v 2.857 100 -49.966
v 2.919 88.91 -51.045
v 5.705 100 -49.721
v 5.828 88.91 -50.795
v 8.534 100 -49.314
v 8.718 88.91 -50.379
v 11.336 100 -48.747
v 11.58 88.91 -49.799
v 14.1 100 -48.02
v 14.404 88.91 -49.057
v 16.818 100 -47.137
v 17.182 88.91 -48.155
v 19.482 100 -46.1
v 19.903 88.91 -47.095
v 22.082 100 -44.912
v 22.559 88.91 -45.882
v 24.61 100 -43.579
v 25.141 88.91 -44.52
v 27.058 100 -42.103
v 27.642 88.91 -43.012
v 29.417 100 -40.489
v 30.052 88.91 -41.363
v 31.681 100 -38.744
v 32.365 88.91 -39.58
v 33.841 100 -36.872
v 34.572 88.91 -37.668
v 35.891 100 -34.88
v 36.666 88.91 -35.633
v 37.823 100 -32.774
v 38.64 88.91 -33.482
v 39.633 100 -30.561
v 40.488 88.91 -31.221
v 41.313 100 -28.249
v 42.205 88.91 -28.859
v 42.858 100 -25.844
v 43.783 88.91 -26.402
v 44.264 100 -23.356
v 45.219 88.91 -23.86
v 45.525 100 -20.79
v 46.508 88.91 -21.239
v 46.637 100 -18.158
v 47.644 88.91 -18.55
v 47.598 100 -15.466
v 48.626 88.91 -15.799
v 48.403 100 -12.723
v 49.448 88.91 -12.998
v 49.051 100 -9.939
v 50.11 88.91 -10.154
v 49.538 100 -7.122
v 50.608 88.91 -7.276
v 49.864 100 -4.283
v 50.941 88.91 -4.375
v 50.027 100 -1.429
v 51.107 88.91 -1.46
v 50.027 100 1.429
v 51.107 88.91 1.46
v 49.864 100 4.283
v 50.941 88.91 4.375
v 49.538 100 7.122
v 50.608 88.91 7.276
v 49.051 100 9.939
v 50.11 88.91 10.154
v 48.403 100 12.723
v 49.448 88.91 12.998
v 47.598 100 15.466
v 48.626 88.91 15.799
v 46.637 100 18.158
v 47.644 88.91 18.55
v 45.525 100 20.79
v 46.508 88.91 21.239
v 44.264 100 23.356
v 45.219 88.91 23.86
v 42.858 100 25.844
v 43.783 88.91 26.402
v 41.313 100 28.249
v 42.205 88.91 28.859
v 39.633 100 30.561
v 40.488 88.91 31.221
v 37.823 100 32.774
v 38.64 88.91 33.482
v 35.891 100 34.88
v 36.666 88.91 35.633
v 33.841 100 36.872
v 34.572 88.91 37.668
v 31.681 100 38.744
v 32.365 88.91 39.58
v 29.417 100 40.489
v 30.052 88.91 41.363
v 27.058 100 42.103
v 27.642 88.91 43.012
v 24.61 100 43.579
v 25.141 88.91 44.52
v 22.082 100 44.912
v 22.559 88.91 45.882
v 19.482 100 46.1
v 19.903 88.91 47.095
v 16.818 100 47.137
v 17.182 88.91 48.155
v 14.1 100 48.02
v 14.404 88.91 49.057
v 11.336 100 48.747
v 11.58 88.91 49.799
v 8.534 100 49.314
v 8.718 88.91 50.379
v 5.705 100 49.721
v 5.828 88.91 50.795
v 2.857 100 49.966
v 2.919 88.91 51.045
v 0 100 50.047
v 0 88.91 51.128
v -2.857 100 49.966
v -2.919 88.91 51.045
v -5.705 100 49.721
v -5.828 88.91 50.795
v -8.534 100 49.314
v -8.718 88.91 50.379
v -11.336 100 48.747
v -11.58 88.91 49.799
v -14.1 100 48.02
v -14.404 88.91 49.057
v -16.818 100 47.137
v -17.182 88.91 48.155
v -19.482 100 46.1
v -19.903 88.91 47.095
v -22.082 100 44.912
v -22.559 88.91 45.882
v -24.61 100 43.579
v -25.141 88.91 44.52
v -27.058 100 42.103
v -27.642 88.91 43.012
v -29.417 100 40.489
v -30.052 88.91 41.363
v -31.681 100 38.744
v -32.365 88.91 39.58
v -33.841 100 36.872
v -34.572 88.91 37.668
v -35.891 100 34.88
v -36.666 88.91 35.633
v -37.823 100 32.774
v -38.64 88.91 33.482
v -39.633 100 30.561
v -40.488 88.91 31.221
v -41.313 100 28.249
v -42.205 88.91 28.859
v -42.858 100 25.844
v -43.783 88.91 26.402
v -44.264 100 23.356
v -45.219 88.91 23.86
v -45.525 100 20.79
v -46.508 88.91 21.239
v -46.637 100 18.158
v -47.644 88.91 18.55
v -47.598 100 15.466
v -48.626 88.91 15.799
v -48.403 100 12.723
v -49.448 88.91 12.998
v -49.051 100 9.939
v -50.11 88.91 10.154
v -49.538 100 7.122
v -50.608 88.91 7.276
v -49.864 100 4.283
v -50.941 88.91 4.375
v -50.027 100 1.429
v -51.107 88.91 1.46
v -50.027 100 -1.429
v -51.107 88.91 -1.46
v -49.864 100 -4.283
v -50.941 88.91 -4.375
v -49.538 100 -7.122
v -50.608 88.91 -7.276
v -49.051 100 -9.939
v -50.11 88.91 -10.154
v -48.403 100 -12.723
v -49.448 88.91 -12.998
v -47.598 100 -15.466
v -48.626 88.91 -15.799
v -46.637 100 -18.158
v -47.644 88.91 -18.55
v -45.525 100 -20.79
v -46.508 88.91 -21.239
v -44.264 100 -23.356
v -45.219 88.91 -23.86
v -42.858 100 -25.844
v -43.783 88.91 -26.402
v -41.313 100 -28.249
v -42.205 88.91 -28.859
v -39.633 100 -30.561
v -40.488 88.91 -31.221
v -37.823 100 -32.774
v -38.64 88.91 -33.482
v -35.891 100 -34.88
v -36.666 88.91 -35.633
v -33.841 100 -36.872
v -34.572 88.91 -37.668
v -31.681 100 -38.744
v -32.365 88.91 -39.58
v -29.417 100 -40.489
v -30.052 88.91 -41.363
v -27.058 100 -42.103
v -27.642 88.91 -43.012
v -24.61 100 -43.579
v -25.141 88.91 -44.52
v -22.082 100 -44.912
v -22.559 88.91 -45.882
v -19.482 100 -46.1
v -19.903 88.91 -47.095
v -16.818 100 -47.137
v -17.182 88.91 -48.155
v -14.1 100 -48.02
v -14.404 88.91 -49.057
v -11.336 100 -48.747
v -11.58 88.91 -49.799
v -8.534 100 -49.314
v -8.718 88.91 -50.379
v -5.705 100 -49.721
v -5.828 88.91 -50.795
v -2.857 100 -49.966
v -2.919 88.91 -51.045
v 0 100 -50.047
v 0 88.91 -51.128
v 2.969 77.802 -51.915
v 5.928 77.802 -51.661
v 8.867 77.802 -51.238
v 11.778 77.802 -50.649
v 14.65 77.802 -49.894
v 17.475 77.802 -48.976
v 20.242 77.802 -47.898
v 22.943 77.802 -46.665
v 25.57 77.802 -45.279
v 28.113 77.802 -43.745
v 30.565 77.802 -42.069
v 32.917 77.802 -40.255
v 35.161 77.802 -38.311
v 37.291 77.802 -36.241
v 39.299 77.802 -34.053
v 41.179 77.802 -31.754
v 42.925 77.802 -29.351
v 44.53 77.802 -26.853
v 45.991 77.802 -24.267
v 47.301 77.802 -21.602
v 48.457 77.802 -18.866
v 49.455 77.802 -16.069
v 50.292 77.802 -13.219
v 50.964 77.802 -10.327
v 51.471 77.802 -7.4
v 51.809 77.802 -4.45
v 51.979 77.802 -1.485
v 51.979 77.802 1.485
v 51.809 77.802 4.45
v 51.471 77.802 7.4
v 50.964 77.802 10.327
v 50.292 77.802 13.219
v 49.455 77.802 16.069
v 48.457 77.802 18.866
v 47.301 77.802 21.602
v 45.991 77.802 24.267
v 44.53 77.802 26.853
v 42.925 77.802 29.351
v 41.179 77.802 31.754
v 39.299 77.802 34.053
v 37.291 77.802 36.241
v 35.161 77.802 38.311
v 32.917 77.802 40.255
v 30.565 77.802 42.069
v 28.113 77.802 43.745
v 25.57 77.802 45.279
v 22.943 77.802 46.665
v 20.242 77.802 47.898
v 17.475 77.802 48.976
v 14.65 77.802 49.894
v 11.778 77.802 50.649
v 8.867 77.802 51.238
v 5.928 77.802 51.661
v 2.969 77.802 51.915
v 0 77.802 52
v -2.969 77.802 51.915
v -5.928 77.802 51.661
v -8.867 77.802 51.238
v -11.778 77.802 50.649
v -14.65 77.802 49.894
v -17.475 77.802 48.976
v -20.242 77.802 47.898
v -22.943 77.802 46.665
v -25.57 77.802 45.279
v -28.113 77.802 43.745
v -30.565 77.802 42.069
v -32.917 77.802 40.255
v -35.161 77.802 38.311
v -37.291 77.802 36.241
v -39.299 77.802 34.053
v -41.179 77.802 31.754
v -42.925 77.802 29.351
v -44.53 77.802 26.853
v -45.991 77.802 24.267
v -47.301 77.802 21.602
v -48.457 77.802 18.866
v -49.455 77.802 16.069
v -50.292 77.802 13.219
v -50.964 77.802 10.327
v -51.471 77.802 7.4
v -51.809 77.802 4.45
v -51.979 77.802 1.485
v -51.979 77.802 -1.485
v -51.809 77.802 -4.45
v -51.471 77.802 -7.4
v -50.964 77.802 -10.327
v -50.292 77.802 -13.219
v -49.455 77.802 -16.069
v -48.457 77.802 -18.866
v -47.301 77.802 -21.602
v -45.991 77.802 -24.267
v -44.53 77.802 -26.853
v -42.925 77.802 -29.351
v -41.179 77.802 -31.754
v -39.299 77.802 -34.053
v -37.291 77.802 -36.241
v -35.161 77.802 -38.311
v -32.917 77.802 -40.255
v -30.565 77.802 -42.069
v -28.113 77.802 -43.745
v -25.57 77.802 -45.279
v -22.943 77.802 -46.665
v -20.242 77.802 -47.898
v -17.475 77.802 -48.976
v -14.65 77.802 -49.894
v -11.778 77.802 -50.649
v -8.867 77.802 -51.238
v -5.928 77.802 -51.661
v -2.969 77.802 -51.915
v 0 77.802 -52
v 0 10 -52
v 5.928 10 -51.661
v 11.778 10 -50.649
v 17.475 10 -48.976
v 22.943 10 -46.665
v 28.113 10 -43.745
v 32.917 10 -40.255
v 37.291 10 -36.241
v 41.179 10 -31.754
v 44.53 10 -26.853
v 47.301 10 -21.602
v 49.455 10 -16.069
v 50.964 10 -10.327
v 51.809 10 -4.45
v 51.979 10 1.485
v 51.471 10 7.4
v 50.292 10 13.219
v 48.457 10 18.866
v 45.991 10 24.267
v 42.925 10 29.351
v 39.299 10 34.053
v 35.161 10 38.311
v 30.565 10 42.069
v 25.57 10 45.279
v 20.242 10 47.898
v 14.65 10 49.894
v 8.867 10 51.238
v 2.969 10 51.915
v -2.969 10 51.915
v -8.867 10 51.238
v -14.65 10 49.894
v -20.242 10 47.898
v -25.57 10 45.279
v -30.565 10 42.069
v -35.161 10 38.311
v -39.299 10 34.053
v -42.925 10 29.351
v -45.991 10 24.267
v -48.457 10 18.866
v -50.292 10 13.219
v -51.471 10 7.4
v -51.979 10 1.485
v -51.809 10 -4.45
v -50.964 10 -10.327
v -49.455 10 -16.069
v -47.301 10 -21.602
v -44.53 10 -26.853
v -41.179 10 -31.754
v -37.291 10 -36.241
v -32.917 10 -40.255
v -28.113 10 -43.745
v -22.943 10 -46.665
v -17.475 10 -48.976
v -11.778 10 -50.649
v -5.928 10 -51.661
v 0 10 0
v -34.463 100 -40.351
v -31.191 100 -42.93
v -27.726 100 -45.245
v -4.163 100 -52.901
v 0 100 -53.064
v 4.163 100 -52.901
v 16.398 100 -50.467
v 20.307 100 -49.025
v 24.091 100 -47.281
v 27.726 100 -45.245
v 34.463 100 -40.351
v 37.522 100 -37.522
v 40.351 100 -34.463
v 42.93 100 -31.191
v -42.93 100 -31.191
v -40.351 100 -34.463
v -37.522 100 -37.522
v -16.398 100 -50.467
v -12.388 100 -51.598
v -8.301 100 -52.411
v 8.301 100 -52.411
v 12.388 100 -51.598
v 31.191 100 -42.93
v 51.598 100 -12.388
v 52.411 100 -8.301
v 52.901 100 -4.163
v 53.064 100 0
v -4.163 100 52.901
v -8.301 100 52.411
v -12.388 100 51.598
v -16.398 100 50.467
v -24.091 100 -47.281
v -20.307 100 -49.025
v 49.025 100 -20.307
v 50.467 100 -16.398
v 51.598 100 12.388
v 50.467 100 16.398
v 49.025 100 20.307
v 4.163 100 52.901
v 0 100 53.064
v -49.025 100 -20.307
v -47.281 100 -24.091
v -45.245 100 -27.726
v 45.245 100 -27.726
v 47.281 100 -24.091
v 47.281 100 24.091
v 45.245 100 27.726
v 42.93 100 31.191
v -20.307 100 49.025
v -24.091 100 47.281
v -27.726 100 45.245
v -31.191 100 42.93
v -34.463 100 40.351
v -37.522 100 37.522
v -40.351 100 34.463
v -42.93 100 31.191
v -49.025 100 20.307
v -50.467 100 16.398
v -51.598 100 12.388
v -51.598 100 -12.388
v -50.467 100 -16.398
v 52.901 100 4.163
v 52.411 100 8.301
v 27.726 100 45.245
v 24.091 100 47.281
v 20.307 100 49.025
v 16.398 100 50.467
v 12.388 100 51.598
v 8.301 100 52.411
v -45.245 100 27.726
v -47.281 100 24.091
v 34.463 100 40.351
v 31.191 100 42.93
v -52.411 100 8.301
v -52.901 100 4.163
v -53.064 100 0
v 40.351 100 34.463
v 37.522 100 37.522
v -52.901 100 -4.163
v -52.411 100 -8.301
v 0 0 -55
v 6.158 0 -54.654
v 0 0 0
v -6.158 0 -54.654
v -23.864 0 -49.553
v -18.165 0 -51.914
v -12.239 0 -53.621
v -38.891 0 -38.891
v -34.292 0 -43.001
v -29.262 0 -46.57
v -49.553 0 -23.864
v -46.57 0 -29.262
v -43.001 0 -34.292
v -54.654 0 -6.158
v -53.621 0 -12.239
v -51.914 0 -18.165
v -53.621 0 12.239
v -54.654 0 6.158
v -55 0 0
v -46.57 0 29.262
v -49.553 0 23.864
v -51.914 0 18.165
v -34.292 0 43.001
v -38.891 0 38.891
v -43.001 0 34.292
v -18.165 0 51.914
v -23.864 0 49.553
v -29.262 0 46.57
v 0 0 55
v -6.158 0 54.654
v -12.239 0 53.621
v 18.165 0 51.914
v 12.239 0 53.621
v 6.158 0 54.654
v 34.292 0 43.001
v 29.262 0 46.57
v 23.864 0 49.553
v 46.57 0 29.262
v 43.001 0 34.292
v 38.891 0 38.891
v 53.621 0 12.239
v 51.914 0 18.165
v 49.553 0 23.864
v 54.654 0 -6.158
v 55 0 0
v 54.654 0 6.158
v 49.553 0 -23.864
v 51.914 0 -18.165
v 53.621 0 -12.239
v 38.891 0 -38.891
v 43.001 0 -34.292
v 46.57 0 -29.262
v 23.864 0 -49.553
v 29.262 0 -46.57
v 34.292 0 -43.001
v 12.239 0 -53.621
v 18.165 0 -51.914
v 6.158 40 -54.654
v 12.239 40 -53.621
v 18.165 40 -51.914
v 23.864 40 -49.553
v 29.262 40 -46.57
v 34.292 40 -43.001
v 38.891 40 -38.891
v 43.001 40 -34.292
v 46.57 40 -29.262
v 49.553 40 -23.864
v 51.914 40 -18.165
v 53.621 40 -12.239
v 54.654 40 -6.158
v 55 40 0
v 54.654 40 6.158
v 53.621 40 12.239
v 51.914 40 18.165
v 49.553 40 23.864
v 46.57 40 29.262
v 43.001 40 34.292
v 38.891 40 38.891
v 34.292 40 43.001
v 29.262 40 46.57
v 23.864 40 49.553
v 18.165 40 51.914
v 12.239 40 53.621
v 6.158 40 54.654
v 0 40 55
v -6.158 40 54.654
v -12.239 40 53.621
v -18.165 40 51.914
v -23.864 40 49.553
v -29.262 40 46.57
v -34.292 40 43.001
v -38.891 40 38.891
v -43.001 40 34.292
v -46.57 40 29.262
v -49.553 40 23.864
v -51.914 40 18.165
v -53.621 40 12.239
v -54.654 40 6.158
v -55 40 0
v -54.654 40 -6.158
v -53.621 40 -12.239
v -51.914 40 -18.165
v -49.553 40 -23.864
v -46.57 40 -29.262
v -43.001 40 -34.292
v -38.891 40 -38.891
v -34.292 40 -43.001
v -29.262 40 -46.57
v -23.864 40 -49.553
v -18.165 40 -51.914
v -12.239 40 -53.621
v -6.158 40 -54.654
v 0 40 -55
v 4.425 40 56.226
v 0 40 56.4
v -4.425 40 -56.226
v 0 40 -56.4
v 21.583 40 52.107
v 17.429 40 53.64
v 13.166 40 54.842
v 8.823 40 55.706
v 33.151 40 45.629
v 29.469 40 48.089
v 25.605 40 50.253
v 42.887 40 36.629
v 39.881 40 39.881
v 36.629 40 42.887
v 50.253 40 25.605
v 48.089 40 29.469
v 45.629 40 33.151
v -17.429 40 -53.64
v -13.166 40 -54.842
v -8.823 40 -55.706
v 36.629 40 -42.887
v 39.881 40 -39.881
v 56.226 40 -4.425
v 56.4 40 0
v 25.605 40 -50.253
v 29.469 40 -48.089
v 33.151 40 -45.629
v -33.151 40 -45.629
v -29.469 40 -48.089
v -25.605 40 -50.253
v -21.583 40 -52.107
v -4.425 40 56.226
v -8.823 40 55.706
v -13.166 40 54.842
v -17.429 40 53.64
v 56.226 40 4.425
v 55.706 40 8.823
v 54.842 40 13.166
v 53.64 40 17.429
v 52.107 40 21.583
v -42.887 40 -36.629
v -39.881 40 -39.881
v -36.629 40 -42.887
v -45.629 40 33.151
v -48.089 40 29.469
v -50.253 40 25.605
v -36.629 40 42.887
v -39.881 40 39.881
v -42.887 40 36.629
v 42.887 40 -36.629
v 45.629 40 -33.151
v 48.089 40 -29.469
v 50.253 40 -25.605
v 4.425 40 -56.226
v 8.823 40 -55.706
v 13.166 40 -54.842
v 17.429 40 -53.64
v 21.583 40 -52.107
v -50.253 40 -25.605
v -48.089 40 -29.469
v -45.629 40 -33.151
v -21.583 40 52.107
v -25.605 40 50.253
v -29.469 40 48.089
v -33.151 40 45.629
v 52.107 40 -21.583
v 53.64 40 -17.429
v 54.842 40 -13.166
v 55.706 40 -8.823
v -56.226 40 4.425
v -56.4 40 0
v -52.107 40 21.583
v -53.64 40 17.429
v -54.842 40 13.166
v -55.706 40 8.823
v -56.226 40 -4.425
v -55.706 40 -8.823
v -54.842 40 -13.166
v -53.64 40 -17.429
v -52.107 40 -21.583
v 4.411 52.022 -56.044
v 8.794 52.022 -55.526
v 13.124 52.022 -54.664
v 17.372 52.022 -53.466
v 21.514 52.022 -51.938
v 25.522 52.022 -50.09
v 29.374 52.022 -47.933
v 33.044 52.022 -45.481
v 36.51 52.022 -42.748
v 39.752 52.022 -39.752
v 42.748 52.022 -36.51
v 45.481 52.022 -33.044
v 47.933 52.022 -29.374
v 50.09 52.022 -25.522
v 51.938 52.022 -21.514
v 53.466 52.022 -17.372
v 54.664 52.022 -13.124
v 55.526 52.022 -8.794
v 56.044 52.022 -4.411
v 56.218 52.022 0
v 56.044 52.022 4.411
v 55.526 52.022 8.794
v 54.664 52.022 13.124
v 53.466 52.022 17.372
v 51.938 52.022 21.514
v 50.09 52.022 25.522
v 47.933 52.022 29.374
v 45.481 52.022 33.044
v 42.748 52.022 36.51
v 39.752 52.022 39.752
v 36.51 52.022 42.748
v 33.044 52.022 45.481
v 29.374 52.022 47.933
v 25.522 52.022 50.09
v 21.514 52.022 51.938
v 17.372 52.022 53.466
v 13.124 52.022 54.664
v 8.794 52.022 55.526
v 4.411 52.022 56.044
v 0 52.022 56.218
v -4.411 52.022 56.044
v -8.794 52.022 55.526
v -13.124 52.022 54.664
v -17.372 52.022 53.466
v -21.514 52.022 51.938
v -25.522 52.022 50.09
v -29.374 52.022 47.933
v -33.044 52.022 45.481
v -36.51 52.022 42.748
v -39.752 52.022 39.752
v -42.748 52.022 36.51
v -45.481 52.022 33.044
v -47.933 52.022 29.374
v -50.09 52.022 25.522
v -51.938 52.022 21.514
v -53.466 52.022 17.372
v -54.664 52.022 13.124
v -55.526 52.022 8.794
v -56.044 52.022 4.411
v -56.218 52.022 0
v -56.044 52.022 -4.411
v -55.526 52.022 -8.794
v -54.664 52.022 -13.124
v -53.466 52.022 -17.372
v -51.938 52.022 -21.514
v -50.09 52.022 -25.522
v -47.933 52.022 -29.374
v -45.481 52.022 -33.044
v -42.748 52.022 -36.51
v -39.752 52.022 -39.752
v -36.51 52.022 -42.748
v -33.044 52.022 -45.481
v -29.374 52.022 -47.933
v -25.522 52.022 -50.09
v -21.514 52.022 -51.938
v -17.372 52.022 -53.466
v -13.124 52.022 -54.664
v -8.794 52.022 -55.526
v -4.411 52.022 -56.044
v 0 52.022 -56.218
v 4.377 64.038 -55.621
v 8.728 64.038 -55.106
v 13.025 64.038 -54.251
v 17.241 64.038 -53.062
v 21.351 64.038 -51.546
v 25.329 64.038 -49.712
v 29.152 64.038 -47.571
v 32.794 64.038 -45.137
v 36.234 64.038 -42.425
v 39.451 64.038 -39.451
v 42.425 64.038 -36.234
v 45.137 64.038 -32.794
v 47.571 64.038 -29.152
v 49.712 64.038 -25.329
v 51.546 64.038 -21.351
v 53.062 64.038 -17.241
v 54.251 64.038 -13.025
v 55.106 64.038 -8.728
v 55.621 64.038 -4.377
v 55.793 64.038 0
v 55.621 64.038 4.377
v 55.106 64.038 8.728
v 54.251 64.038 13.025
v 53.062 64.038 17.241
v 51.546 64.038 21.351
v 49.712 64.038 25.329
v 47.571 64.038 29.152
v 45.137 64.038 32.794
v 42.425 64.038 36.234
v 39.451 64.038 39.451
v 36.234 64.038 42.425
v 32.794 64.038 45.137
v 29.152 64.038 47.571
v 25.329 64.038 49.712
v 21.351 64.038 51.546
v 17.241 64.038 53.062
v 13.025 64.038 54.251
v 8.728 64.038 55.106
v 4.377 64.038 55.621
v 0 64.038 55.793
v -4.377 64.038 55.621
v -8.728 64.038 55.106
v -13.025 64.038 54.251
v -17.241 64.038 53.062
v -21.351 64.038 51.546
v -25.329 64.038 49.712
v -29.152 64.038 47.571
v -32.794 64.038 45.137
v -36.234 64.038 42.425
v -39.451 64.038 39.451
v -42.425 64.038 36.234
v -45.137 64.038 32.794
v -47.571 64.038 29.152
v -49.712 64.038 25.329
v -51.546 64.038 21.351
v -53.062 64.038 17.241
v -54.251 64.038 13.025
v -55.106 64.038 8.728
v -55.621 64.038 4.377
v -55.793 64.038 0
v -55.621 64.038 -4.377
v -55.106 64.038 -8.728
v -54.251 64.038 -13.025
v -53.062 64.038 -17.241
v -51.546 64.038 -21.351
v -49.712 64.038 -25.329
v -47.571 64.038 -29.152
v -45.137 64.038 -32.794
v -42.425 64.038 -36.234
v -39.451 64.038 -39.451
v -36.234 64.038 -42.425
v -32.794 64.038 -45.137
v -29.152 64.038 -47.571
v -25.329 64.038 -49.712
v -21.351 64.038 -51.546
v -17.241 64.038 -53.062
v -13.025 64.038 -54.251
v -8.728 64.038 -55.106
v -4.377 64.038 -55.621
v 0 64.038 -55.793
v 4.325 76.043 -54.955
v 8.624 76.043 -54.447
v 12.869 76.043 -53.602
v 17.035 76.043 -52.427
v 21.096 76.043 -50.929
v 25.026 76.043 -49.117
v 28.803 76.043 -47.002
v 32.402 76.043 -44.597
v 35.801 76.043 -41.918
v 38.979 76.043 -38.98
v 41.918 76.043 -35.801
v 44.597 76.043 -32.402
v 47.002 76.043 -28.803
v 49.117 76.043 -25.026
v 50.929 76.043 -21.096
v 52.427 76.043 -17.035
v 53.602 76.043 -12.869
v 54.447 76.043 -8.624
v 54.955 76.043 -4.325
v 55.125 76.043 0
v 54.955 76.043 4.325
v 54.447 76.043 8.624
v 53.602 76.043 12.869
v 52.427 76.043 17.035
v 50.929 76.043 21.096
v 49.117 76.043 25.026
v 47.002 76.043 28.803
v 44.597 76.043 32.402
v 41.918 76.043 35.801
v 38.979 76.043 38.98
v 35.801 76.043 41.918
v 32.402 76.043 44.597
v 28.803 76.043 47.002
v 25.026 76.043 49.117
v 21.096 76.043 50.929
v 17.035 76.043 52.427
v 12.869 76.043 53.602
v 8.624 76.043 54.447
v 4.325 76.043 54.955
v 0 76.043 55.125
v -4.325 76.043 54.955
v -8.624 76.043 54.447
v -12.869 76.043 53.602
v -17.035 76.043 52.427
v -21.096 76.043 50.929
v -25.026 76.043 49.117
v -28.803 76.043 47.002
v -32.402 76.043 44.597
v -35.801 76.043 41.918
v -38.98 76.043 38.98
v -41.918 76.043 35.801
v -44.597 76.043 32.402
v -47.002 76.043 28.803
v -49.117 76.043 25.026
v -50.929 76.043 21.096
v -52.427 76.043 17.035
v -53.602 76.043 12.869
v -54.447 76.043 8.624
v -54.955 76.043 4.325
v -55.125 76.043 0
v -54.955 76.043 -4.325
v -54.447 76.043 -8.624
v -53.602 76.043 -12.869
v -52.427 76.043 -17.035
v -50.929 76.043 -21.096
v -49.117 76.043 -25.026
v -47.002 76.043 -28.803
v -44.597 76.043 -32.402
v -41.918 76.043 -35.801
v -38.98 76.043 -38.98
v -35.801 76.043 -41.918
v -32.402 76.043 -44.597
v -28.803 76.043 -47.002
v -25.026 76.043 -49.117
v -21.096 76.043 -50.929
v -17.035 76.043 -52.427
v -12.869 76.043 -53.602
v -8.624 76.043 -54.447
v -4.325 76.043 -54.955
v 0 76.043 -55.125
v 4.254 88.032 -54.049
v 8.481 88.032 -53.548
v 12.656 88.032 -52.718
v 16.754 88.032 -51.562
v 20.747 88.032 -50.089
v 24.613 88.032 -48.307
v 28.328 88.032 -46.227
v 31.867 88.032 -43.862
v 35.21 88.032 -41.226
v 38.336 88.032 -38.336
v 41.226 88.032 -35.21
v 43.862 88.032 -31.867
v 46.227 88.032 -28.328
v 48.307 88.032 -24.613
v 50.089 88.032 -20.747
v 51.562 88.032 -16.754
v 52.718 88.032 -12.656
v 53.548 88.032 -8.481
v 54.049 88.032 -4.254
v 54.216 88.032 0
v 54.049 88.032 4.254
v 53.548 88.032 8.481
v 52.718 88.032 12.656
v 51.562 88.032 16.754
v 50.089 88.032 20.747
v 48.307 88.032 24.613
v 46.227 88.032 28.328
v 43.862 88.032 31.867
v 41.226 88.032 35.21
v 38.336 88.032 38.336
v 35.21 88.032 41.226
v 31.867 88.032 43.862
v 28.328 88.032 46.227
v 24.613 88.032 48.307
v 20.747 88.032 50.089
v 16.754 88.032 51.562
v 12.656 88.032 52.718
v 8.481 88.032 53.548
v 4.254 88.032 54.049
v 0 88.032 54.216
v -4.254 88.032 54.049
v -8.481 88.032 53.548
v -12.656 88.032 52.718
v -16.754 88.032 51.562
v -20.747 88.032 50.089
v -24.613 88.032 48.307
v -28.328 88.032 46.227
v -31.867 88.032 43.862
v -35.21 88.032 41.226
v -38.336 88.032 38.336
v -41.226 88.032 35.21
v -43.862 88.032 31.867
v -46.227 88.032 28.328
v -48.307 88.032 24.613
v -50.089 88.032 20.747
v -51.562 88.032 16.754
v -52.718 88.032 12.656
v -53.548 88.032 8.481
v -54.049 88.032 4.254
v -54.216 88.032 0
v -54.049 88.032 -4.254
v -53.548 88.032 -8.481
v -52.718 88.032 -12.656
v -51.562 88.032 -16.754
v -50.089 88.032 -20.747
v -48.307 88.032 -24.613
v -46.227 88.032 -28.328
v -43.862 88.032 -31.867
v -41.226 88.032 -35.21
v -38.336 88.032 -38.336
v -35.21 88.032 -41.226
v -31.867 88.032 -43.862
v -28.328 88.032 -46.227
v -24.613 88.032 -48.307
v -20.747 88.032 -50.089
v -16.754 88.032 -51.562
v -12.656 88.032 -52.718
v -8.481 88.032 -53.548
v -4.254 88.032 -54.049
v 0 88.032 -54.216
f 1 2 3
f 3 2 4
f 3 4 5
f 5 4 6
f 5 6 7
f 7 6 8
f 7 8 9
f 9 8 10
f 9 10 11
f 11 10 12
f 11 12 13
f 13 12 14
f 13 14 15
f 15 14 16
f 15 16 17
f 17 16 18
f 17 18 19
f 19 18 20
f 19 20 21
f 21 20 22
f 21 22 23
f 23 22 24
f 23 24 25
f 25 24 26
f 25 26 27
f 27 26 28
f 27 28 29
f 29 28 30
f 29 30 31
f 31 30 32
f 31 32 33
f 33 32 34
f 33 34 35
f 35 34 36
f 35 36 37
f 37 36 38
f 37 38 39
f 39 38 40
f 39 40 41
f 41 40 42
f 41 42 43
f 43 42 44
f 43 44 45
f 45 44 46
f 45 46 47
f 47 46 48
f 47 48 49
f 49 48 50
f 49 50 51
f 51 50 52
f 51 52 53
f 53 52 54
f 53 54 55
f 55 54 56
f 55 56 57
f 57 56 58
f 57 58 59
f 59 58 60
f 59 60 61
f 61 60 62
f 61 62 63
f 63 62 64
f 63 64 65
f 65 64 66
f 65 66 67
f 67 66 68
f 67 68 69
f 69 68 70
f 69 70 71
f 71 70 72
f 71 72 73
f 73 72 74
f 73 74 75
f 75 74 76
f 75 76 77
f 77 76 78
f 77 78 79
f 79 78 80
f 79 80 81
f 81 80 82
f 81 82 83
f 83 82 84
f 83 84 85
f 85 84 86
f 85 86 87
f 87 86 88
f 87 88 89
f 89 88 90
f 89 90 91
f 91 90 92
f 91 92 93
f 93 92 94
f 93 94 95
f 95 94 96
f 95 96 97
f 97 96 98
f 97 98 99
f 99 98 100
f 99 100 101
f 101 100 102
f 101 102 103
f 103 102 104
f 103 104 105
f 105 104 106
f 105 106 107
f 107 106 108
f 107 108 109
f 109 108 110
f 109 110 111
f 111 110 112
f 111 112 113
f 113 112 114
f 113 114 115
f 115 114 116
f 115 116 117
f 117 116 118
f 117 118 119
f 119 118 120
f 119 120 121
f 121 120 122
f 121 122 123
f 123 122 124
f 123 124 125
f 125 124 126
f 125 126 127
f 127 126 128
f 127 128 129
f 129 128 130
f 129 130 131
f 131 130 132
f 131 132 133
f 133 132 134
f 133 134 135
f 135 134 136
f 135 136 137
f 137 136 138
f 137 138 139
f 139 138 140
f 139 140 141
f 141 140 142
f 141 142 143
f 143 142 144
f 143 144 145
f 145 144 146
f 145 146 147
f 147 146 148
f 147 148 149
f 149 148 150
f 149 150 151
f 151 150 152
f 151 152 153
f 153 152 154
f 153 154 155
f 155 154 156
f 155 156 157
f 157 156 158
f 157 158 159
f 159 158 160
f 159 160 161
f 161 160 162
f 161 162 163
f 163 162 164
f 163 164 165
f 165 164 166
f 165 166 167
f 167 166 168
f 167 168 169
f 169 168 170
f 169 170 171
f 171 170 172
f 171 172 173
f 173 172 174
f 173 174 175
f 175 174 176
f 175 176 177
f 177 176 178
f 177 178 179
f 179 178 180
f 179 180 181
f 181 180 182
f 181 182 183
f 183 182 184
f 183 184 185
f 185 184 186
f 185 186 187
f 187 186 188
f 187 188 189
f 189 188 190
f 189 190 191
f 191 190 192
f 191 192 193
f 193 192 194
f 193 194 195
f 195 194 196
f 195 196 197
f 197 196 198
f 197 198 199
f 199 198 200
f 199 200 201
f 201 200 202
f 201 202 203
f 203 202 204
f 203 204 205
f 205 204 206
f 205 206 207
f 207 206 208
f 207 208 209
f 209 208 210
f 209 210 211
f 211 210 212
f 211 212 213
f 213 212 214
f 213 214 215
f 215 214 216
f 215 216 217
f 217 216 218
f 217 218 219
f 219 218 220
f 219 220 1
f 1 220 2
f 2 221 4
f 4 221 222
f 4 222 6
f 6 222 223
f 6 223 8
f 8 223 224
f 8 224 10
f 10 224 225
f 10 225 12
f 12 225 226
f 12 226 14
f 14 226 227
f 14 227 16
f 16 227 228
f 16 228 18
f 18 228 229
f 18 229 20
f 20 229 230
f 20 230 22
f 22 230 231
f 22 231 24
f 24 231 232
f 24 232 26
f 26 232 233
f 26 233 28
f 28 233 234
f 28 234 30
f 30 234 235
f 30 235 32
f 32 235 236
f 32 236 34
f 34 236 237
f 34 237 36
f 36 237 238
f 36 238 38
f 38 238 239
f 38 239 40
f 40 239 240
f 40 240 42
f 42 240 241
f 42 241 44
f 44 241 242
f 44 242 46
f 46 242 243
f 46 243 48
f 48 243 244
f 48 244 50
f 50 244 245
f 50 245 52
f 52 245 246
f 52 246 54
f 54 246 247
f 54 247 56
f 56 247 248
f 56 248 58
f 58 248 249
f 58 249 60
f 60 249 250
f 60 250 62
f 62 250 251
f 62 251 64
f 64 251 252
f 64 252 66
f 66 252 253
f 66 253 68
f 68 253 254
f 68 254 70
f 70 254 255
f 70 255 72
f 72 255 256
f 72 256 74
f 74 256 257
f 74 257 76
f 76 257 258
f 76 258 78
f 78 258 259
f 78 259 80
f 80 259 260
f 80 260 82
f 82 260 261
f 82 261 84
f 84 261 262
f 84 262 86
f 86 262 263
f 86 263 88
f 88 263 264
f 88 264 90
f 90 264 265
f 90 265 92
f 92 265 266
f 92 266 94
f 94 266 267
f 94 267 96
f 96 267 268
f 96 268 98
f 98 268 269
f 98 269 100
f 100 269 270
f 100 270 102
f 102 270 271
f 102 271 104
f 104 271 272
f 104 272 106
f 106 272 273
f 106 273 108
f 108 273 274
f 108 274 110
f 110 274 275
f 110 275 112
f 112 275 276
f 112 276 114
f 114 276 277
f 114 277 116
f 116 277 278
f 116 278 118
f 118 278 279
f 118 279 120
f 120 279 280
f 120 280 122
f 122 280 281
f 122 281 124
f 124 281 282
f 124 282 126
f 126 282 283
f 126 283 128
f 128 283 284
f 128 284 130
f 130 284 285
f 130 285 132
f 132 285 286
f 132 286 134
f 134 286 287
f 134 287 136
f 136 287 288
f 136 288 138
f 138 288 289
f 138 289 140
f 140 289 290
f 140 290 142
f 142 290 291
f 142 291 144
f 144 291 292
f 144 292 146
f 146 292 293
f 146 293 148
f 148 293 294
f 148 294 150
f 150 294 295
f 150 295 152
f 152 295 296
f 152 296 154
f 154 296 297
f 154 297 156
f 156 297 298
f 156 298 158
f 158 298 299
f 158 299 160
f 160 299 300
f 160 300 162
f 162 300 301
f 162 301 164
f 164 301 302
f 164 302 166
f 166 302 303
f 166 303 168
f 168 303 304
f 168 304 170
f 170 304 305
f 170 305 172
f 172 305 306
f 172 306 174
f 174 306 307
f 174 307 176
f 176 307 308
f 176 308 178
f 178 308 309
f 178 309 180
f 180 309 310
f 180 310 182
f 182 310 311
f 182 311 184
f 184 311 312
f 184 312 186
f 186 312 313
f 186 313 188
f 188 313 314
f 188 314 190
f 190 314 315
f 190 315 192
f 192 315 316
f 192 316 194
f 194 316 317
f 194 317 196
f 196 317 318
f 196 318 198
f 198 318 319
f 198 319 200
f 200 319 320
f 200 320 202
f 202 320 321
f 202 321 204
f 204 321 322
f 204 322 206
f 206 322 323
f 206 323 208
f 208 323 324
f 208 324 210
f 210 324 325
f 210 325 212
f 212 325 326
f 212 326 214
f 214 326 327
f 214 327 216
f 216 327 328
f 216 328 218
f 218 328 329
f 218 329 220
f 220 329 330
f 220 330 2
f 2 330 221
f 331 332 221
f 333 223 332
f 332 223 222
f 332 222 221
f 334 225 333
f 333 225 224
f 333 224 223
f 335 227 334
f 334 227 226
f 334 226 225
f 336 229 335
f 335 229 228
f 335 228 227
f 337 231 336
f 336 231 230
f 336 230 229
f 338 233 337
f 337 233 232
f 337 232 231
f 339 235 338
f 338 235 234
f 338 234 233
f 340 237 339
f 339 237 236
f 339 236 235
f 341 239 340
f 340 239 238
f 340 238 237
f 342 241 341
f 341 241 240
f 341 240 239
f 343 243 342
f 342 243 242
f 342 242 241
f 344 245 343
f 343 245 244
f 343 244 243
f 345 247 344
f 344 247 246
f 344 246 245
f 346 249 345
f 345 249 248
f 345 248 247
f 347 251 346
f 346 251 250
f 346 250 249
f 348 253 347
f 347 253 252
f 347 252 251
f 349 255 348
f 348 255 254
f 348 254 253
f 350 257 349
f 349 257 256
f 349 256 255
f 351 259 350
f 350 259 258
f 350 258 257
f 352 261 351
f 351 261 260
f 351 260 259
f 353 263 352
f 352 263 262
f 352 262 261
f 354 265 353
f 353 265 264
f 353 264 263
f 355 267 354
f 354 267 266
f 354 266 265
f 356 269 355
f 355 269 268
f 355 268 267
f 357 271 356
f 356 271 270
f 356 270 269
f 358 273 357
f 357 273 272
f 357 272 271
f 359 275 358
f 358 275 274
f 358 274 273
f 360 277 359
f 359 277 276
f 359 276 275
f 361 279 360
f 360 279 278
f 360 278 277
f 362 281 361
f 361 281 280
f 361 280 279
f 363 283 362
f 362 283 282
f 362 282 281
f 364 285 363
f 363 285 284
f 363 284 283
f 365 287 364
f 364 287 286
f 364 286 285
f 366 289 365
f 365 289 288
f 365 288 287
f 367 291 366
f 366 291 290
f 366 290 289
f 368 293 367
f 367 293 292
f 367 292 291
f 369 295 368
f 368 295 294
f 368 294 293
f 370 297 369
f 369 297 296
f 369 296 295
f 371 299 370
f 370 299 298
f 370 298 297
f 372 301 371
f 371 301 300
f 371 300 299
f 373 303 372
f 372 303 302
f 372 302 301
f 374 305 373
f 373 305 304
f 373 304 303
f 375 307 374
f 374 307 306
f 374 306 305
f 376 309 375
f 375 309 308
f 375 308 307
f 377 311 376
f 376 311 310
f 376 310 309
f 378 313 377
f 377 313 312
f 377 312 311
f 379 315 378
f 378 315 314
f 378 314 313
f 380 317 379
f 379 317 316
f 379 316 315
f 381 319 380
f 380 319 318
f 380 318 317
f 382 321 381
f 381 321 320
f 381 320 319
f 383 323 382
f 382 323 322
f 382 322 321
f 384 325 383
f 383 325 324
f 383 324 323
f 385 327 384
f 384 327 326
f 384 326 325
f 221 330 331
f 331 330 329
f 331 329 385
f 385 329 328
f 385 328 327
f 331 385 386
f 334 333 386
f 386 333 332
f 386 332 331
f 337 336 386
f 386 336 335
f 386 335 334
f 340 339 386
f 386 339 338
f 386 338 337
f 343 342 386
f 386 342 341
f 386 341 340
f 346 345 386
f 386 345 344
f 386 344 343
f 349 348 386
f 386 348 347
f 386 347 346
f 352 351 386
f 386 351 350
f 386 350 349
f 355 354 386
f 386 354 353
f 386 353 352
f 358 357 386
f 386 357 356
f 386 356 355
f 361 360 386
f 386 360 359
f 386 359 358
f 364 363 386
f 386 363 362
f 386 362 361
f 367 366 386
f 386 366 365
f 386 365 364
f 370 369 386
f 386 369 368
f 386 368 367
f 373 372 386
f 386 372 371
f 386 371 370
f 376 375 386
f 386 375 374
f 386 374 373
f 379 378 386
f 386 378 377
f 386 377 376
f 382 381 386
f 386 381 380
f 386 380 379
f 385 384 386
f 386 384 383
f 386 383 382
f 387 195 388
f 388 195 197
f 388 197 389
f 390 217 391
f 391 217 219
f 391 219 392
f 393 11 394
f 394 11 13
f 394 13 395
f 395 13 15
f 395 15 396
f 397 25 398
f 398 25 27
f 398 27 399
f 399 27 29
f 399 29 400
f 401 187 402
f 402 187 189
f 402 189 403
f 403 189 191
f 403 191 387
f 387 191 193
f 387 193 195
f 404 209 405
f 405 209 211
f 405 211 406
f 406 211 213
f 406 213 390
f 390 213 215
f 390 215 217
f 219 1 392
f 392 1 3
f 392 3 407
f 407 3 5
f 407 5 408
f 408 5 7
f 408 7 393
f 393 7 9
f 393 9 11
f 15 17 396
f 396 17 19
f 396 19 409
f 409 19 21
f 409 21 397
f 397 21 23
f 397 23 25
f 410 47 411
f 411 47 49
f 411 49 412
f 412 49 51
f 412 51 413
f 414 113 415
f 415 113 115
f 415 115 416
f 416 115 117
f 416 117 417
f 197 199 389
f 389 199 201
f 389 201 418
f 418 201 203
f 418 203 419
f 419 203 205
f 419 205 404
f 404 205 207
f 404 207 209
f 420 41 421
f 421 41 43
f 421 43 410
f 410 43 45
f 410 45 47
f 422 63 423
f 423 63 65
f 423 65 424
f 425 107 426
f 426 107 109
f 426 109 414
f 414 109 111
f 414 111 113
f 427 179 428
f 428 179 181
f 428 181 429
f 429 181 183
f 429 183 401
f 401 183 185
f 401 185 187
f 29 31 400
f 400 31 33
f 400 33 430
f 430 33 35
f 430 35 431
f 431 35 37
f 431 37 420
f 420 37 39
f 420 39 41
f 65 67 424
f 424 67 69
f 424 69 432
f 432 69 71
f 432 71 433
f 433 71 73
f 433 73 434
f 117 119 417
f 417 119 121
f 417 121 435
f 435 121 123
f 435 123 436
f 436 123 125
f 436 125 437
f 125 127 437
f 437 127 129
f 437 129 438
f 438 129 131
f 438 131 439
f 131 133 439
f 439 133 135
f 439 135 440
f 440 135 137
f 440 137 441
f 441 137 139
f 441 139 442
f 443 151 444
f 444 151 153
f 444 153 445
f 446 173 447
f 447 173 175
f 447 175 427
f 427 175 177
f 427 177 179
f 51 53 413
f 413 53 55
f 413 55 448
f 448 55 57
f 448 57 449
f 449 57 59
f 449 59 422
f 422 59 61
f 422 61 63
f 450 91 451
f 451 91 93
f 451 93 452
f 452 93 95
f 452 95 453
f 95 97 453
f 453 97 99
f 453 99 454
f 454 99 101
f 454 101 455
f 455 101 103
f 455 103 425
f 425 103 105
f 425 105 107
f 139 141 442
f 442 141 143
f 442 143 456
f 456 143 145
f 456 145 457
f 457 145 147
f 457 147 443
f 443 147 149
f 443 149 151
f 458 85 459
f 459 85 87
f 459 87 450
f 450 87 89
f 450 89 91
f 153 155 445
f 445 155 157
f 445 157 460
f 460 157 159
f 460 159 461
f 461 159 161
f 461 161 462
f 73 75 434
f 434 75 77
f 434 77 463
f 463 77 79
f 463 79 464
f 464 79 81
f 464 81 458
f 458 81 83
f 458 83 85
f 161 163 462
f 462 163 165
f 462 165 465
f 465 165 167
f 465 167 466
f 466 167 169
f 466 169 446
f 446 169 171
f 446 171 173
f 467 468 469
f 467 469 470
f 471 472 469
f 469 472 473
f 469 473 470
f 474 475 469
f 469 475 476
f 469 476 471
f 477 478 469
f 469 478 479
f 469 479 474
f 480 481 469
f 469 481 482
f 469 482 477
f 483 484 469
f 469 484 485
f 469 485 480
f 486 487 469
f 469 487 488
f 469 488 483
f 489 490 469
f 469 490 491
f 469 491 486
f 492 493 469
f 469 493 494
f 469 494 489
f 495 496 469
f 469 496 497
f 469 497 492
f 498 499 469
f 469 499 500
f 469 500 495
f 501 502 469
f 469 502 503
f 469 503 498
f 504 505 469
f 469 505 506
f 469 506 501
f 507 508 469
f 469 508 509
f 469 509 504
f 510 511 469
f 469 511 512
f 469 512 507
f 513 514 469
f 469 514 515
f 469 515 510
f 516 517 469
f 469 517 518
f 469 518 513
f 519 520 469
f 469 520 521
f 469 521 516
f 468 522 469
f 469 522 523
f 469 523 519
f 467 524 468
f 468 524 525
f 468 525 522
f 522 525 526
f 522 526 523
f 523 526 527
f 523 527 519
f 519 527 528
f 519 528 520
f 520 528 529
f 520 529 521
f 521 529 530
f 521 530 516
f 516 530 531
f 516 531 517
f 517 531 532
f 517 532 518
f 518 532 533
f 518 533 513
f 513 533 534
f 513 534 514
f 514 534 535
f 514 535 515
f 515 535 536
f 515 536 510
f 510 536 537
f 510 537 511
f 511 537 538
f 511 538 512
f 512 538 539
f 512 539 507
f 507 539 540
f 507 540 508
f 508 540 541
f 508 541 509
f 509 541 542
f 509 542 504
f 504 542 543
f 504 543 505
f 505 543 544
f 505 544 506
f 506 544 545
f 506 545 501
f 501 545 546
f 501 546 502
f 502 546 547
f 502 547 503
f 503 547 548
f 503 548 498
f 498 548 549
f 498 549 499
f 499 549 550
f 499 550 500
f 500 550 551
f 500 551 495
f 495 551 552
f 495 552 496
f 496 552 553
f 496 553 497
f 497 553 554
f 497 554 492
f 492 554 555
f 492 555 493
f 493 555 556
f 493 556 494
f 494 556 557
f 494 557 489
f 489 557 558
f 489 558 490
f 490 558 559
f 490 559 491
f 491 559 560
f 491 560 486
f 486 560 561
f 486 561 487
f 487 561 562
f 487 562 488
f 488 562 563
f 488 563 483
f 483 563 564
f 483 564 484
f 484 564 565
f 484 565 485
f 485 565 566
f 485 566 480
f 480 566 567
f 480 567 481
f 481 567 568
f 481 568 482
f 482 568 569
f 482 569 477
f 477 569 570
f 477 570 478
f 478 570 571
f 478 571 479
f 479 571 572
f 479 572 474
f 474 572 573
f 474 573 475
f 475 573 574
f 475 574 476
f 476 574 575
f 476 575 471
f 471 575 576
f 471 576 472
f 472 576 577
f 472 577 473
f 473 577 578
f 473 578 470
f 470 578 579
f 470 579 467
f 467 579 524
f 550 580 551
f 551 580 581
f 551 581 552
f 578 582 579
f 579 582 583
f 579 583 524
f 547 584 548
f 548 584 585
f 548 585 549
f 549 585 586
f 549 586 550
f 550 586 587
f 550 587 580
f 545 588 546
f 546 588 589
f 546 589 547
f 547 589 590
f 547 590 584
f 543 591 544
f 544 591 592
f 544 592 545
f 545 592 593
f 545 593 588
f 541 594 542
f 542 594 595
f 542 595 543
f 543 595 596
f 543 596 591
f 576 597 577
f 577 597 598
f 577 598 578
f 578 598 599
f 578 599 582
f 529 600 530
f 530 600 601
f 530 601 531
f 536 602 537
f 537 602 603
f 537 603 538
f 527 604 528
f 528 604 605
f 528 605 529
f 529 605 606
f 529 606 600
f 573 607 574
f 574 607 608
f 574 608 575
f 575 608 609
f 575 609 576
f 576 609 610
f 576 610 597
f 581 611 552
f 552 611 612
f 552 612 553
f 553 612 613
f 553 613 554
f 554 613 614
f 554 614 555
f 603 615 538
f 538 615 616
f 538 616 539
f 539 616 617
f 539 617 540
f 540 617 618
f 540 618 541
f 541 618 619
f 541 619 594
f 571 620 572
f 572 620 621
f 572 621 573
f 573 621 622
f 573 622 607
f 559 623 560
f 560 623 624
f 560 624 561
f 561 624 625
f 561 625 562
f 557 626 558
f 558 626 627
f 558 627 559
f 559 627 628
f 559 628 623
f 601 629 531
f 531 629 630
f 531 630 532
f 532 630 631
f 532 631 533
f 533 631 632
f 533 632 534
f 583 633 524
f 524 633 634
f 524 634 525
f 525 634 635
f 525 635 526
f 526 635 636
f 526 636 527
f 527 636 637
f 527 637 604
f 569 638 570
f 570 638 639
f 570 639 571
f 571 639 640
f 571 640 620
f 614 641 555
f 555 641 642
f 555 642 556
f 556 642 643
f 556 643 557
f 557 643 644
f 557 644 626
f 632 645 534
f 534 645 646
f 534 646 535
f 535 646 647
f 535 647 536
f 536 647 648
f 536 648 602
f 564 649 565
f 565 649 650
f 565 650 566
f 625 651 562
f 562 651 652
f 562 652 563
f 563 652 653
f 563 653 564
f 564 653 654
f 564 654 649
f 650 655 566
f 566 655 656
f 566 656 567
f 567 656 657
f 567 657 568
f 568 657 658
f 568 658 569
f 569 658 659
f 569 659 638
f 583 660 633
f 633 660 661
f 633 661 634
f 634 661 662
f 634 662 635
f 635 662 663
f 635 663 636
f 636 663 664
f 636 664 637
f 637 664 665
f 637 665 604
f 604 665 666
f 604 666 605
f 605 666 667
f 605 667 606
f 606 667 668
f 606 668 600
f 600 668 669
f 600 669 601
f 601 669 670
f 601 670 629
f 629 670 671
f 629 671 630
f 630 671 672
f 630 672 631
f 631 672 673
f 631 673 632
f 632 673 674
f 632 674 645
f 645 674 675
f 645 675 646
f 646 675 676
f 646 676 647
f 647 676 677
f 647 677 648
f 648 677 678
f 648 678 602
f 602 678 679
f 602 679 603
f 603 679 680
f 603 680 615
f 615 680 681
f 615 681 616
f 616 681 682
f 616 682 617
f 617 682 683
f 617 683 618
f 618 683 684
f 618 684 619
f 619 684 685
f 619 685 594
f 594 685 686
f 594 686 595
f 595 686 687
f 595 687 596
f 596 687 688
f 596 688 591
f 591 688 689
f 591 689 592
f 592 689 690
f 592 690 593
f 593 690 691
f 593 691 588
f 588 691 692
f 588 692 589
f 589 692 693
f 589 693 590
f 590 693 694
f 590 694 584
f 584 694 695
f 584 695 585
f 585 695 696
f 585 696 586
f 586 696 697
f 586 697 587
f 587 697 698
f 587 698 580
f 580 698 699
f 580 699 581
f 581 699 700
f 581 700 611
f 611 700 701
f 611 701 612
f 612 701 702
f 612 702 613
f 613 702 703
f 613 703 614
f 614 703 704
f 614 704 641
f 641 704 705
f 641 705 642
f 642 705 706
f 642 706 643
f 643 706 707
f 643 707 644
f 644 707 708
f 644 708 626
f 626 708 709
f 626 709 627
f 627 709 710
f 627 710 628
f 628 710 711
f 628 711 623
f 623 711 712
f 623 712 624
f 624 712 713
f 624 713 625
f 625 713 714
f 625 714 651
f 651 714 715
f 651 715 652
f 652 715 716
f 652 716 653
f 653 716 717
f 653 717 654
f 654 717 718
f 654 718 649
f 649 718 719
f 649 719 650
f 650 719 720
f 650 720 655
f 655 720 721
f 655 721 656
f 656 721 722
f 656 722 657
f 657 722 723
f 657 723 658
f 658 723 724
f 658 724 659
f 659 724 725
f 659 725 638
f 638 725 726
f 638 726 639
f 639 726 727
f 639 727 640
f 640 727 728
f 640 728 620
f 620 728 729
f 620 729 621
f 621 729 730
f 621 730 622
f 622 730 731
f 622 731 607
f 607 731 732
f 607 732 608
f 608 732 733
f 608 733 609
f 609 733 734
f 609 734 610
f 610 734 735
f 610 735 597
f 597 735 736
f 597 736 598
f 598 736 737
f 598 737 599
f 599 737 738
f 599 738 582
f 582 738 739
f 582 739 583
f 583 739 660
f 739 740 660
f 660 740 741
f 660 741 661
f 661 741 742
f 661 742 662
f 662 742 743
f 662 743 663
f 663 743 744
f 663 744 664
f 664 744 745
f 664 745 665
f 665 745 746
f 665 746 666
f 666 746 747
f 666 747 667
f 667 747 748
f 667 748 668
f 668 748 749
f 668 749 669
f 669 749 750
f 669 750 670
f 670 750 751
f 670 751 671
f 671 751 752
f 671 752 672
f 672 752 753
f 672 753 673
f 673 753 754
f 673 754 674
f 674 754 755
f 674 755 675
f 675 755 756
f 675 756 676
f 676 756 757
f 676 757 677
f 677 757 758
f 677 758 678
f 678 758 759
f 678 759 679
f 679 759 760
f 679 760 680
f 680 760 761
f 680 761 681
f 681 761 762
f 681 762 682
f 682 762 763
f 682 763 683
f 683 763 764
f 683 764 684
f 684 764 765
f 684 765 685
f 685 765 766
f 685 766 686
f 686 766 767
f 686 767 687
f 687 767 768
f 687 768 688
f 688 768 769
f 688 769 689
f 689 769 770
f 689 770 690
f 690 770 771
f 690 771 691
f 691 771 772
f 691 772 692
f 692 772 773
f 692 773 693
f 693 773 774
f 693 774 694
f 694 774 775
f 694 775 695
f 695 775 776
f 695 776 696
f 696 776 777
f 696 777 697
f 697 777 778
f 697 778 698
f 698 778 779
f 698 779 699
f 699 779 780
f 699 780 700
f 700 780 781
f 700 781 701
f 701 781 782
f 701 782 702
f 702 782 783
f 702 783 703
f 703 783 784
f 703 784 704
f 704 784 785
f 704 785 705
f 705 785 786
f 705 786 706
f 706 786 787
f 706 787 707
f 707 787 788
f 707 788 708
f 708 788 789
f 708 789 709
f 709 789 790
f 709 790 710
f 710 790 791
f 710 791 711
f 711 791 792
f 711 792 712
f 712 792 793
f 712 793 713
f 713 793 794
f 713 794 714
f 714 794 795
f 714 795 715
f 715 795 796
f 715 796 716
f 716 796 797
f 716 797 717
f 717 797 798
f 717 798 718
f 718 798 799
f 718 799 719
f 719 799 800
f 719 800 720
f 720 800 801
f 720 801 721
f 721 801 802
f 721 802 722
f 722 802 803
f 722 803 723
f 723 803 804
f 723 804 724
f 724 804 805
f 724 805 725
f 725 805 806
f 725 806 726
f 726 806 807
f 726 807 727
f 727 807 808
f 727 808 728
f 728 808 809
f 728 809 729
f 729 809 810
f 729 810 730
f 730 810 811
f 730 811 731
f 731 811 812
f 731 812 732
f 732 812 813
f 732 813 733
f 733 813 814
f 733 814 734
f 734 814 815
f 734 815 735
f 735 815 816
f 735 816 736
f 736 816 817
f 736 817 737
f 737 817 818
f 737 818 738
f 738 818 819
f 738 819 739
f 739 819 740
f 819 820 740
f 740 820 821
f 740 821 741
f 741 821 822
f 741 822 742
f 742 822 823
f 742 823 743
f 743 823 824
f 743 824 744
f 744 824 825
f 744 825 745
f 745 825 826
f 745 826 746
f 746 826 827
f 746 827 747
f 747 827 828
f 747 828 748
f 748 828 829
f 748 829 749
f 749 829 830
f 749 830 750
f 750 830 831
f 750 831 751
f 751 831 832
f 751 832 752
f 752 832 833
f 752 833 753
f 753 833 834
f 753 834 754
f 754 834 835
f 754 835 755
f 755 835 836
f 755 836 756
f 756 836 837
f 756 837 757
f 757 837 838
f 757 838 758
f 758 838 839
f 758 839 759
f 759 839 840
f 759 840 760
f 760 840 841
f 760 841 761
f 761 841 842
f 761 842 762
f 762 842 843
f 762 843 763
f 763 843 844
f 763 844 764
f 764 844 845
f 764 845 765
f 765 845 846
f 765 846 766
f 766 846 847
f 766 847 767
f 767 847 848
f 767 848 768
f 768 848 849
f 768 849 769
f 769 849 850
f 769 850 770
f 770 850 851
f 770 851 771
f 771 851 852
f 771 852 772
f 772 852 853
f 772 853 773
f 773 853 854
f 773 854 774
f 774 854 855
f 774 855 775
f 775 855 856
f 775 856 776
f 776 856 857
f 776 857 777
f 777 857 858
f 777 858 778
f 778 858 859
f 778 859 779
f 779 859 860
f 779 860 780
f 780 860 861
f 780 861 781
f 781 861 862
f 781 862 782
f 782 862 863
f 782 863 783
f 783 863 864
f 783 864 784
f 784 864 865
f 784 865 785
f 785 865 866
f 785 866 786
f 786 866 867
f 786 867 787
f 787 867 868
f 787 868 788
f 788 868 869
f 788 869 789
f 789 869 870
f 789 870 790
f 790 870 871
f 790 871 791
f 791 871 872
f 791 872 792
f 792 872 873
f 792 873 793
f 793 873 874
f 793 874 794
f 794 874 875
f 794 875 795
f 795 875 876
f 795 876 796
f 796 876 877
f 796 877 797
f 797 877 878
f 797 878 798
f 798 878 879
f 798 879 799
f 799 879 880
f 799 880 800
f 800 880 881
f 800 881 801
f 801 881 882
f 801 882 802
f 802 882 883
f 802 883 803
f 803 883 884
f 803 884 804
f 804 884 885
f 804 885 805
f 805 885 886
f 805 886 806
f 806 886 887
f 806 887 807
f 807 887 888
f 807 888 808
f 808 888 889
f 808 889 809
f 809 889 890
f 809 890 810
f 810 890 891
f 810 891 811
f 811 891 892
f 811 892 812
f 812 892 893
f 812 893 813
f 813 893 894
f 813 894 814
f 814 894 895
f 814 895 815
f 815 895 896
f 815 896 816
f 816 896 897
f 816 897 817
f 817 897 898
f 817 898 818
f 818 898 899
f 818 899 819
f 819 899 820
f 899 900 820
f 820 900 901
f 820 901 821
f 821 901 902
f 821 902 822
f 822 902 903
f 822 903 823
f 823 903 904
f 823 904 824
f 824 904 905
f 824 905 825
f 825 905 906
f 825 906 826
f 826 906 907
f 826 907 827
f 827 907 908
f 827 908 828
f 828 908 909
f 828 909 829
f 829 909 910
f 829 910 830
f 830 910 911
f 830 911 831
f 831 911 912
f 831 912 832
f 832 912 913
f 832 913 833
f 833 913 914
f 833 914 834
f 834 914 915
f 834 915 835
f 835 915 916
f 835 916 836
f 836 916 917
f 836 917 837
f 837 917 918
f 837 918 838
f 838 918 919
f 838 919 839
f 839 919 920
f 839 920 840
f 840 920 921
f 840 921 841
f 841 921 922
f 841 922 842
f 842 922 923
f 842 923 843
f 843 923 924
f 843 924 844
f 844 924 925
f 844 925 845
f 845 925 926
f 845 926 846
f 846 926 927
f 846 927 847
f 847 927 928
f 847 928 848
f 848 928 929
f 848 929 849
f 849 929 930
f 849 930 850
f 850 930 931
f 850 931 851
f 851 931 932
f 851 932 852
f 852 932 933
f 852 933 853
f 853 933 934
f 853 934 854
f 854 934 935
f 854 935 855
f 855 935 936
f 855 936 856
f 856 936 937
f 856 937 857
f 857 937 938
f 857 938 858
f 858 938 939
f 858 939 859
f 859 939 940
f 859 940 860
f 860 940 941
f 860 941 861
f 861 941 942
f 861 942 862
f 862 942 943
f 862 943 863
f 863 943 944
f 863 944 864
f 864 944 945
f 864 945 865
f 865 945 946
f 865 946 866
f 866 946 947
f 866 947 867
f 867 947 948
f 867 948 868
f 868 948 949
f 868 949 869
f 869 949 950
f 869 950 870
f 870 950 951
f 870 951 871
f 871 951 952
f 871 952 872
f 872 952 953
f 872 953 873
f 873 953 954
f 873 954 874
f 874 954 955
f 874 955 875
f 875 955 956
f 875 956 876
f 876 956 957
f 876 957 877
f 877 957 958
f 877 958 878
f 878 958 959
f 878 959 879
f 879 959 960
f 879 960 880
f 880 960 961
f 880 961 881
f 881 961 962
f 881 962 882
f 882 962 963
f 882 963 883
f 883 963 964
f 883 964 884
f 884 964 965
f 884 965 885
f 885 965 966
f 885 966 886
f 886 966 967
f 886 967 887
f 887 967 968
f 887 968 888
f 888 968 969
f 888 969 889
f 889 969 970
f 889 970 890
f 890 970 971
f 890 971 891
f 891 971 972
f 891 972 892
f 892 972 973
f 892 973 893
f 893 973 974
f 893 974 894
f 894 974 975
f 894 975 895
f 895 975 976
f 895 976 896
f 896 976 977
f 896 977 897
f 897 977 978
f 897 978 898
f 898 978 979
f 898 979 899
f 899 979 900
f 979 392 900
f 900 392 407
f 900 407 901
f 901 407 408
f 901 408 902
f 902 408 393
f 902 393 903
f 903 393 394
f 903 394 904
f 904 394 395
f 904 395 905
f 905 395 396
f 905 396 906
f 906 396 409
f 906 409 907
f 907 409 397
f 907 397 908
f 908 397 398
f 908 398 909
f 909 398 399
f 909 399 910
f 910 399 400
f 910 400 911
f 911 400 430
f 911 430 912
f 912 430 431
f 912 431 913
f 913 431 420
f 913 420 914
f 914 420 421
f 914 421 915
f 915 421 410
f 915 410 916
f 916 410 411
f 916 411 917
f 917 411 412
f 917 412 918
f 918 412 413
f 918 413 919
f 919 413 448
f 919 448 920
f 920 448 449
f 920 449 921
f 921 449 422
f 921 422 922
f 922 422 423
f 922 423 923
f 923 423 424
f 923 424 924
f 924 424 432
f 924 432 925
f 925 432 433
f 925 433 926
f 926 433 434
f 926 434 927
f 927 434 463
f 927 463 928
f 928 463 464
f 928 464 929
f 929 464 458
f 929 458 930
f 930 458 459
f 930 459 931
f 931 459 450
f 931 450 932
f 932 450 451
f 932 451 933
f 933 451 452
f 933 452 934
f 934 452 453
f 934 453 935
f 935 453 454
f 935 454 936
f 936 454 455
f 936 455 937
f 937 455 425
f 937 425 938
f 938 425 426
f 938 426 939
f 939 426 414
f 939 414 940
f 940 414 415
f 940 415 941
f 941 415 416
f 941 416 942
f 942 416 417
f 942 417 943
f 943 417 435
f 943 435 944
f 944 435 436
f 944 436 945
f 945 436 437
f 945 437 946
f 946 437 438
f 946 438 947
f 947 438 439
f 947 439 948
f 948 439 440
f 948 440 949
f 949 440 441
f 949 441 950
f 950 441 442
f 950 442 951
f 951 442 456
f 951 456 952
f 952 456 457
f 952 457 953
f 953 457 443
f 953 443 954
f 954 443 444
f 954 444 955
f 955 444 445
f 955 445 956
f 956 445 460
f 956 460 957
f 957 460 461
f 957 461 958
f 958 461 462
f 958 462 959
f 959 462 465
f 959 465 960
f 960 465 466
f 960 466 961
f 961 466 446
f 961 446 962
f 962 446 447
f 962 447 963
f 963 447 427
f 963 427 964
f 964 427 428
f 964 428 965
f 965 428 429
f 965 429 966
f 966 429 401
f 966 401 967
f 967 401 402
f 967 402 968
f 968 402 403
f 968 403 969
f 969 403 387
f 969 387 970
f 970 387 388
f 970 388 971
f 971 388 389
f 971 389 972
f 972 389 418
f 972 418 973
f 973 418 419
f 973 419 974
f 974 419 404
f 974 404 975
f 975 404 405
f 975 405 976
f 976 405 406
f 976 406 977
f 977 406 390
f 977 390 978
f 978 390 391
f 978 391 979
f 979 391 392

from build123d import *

# Parameters (mm, degrees)
CORTAR_EXTRUIR1_DEPTH      = 301.768881503
CORTAR_EXTRUIR1_DEPTH_BACK = 301.768881503
CROQUIS2_W                 = 123.052160051
CROQUIS2_H                 = 221.260981795


with BuildPart() as part:
    # Croquis1 → Revolución1 (revolve)
    with BuildSketch(Plane(origin=(0, 0, 0), x_dir=(0, 0, -1), z_dir=(1, 0, 0))):
        with BuildLine():
            Line((52, 10), (52, 77.802029213))
            ThreePointArc((52, 77.802029213), (35.222542715, 182.66683475), (0, 282.854074446))
            Line((0, 282.854074446), (0, 290))
            ThreePointArc((0, 290), (41.804081284, 168.069080738), (56.4, 40))
            Line((56.4, 40), (55, 40))
            Line((55, 40), (55, 0))
            Line((55, 0), (52, 0))
            Line((52, 0), (0, 0))
            Line((0, 0), (0, 10))
            Line((0, 10), (52, 10))
        make_face()
    revolve(axis=Axis((0, 0, 0), (0, 1, 0)))

    # Croquis2 → Cortar-Extruir1 (cut, two sides: drawn at the far end of the back side and taken through both)
    with BuildSketch(Plane(origin=(0, 0, 0), x_dir=(0, 0, -1), z_dir=(1, 0, 0)).offset(-CORTAR_EXTRUIR1_DEPTH_BACK)):
        with Locations((-0.582265741, 210.630490898)):
            Rectangle(CROQUIS2_W, CROQUIS2_H)
    extrude(amount=CORTAR_EXTRUIR1_DEPTH + CORTAR_EXTRUIR1_DEPTH_BACK, mode=Mode.SUBTRACT)


solid = part.part
